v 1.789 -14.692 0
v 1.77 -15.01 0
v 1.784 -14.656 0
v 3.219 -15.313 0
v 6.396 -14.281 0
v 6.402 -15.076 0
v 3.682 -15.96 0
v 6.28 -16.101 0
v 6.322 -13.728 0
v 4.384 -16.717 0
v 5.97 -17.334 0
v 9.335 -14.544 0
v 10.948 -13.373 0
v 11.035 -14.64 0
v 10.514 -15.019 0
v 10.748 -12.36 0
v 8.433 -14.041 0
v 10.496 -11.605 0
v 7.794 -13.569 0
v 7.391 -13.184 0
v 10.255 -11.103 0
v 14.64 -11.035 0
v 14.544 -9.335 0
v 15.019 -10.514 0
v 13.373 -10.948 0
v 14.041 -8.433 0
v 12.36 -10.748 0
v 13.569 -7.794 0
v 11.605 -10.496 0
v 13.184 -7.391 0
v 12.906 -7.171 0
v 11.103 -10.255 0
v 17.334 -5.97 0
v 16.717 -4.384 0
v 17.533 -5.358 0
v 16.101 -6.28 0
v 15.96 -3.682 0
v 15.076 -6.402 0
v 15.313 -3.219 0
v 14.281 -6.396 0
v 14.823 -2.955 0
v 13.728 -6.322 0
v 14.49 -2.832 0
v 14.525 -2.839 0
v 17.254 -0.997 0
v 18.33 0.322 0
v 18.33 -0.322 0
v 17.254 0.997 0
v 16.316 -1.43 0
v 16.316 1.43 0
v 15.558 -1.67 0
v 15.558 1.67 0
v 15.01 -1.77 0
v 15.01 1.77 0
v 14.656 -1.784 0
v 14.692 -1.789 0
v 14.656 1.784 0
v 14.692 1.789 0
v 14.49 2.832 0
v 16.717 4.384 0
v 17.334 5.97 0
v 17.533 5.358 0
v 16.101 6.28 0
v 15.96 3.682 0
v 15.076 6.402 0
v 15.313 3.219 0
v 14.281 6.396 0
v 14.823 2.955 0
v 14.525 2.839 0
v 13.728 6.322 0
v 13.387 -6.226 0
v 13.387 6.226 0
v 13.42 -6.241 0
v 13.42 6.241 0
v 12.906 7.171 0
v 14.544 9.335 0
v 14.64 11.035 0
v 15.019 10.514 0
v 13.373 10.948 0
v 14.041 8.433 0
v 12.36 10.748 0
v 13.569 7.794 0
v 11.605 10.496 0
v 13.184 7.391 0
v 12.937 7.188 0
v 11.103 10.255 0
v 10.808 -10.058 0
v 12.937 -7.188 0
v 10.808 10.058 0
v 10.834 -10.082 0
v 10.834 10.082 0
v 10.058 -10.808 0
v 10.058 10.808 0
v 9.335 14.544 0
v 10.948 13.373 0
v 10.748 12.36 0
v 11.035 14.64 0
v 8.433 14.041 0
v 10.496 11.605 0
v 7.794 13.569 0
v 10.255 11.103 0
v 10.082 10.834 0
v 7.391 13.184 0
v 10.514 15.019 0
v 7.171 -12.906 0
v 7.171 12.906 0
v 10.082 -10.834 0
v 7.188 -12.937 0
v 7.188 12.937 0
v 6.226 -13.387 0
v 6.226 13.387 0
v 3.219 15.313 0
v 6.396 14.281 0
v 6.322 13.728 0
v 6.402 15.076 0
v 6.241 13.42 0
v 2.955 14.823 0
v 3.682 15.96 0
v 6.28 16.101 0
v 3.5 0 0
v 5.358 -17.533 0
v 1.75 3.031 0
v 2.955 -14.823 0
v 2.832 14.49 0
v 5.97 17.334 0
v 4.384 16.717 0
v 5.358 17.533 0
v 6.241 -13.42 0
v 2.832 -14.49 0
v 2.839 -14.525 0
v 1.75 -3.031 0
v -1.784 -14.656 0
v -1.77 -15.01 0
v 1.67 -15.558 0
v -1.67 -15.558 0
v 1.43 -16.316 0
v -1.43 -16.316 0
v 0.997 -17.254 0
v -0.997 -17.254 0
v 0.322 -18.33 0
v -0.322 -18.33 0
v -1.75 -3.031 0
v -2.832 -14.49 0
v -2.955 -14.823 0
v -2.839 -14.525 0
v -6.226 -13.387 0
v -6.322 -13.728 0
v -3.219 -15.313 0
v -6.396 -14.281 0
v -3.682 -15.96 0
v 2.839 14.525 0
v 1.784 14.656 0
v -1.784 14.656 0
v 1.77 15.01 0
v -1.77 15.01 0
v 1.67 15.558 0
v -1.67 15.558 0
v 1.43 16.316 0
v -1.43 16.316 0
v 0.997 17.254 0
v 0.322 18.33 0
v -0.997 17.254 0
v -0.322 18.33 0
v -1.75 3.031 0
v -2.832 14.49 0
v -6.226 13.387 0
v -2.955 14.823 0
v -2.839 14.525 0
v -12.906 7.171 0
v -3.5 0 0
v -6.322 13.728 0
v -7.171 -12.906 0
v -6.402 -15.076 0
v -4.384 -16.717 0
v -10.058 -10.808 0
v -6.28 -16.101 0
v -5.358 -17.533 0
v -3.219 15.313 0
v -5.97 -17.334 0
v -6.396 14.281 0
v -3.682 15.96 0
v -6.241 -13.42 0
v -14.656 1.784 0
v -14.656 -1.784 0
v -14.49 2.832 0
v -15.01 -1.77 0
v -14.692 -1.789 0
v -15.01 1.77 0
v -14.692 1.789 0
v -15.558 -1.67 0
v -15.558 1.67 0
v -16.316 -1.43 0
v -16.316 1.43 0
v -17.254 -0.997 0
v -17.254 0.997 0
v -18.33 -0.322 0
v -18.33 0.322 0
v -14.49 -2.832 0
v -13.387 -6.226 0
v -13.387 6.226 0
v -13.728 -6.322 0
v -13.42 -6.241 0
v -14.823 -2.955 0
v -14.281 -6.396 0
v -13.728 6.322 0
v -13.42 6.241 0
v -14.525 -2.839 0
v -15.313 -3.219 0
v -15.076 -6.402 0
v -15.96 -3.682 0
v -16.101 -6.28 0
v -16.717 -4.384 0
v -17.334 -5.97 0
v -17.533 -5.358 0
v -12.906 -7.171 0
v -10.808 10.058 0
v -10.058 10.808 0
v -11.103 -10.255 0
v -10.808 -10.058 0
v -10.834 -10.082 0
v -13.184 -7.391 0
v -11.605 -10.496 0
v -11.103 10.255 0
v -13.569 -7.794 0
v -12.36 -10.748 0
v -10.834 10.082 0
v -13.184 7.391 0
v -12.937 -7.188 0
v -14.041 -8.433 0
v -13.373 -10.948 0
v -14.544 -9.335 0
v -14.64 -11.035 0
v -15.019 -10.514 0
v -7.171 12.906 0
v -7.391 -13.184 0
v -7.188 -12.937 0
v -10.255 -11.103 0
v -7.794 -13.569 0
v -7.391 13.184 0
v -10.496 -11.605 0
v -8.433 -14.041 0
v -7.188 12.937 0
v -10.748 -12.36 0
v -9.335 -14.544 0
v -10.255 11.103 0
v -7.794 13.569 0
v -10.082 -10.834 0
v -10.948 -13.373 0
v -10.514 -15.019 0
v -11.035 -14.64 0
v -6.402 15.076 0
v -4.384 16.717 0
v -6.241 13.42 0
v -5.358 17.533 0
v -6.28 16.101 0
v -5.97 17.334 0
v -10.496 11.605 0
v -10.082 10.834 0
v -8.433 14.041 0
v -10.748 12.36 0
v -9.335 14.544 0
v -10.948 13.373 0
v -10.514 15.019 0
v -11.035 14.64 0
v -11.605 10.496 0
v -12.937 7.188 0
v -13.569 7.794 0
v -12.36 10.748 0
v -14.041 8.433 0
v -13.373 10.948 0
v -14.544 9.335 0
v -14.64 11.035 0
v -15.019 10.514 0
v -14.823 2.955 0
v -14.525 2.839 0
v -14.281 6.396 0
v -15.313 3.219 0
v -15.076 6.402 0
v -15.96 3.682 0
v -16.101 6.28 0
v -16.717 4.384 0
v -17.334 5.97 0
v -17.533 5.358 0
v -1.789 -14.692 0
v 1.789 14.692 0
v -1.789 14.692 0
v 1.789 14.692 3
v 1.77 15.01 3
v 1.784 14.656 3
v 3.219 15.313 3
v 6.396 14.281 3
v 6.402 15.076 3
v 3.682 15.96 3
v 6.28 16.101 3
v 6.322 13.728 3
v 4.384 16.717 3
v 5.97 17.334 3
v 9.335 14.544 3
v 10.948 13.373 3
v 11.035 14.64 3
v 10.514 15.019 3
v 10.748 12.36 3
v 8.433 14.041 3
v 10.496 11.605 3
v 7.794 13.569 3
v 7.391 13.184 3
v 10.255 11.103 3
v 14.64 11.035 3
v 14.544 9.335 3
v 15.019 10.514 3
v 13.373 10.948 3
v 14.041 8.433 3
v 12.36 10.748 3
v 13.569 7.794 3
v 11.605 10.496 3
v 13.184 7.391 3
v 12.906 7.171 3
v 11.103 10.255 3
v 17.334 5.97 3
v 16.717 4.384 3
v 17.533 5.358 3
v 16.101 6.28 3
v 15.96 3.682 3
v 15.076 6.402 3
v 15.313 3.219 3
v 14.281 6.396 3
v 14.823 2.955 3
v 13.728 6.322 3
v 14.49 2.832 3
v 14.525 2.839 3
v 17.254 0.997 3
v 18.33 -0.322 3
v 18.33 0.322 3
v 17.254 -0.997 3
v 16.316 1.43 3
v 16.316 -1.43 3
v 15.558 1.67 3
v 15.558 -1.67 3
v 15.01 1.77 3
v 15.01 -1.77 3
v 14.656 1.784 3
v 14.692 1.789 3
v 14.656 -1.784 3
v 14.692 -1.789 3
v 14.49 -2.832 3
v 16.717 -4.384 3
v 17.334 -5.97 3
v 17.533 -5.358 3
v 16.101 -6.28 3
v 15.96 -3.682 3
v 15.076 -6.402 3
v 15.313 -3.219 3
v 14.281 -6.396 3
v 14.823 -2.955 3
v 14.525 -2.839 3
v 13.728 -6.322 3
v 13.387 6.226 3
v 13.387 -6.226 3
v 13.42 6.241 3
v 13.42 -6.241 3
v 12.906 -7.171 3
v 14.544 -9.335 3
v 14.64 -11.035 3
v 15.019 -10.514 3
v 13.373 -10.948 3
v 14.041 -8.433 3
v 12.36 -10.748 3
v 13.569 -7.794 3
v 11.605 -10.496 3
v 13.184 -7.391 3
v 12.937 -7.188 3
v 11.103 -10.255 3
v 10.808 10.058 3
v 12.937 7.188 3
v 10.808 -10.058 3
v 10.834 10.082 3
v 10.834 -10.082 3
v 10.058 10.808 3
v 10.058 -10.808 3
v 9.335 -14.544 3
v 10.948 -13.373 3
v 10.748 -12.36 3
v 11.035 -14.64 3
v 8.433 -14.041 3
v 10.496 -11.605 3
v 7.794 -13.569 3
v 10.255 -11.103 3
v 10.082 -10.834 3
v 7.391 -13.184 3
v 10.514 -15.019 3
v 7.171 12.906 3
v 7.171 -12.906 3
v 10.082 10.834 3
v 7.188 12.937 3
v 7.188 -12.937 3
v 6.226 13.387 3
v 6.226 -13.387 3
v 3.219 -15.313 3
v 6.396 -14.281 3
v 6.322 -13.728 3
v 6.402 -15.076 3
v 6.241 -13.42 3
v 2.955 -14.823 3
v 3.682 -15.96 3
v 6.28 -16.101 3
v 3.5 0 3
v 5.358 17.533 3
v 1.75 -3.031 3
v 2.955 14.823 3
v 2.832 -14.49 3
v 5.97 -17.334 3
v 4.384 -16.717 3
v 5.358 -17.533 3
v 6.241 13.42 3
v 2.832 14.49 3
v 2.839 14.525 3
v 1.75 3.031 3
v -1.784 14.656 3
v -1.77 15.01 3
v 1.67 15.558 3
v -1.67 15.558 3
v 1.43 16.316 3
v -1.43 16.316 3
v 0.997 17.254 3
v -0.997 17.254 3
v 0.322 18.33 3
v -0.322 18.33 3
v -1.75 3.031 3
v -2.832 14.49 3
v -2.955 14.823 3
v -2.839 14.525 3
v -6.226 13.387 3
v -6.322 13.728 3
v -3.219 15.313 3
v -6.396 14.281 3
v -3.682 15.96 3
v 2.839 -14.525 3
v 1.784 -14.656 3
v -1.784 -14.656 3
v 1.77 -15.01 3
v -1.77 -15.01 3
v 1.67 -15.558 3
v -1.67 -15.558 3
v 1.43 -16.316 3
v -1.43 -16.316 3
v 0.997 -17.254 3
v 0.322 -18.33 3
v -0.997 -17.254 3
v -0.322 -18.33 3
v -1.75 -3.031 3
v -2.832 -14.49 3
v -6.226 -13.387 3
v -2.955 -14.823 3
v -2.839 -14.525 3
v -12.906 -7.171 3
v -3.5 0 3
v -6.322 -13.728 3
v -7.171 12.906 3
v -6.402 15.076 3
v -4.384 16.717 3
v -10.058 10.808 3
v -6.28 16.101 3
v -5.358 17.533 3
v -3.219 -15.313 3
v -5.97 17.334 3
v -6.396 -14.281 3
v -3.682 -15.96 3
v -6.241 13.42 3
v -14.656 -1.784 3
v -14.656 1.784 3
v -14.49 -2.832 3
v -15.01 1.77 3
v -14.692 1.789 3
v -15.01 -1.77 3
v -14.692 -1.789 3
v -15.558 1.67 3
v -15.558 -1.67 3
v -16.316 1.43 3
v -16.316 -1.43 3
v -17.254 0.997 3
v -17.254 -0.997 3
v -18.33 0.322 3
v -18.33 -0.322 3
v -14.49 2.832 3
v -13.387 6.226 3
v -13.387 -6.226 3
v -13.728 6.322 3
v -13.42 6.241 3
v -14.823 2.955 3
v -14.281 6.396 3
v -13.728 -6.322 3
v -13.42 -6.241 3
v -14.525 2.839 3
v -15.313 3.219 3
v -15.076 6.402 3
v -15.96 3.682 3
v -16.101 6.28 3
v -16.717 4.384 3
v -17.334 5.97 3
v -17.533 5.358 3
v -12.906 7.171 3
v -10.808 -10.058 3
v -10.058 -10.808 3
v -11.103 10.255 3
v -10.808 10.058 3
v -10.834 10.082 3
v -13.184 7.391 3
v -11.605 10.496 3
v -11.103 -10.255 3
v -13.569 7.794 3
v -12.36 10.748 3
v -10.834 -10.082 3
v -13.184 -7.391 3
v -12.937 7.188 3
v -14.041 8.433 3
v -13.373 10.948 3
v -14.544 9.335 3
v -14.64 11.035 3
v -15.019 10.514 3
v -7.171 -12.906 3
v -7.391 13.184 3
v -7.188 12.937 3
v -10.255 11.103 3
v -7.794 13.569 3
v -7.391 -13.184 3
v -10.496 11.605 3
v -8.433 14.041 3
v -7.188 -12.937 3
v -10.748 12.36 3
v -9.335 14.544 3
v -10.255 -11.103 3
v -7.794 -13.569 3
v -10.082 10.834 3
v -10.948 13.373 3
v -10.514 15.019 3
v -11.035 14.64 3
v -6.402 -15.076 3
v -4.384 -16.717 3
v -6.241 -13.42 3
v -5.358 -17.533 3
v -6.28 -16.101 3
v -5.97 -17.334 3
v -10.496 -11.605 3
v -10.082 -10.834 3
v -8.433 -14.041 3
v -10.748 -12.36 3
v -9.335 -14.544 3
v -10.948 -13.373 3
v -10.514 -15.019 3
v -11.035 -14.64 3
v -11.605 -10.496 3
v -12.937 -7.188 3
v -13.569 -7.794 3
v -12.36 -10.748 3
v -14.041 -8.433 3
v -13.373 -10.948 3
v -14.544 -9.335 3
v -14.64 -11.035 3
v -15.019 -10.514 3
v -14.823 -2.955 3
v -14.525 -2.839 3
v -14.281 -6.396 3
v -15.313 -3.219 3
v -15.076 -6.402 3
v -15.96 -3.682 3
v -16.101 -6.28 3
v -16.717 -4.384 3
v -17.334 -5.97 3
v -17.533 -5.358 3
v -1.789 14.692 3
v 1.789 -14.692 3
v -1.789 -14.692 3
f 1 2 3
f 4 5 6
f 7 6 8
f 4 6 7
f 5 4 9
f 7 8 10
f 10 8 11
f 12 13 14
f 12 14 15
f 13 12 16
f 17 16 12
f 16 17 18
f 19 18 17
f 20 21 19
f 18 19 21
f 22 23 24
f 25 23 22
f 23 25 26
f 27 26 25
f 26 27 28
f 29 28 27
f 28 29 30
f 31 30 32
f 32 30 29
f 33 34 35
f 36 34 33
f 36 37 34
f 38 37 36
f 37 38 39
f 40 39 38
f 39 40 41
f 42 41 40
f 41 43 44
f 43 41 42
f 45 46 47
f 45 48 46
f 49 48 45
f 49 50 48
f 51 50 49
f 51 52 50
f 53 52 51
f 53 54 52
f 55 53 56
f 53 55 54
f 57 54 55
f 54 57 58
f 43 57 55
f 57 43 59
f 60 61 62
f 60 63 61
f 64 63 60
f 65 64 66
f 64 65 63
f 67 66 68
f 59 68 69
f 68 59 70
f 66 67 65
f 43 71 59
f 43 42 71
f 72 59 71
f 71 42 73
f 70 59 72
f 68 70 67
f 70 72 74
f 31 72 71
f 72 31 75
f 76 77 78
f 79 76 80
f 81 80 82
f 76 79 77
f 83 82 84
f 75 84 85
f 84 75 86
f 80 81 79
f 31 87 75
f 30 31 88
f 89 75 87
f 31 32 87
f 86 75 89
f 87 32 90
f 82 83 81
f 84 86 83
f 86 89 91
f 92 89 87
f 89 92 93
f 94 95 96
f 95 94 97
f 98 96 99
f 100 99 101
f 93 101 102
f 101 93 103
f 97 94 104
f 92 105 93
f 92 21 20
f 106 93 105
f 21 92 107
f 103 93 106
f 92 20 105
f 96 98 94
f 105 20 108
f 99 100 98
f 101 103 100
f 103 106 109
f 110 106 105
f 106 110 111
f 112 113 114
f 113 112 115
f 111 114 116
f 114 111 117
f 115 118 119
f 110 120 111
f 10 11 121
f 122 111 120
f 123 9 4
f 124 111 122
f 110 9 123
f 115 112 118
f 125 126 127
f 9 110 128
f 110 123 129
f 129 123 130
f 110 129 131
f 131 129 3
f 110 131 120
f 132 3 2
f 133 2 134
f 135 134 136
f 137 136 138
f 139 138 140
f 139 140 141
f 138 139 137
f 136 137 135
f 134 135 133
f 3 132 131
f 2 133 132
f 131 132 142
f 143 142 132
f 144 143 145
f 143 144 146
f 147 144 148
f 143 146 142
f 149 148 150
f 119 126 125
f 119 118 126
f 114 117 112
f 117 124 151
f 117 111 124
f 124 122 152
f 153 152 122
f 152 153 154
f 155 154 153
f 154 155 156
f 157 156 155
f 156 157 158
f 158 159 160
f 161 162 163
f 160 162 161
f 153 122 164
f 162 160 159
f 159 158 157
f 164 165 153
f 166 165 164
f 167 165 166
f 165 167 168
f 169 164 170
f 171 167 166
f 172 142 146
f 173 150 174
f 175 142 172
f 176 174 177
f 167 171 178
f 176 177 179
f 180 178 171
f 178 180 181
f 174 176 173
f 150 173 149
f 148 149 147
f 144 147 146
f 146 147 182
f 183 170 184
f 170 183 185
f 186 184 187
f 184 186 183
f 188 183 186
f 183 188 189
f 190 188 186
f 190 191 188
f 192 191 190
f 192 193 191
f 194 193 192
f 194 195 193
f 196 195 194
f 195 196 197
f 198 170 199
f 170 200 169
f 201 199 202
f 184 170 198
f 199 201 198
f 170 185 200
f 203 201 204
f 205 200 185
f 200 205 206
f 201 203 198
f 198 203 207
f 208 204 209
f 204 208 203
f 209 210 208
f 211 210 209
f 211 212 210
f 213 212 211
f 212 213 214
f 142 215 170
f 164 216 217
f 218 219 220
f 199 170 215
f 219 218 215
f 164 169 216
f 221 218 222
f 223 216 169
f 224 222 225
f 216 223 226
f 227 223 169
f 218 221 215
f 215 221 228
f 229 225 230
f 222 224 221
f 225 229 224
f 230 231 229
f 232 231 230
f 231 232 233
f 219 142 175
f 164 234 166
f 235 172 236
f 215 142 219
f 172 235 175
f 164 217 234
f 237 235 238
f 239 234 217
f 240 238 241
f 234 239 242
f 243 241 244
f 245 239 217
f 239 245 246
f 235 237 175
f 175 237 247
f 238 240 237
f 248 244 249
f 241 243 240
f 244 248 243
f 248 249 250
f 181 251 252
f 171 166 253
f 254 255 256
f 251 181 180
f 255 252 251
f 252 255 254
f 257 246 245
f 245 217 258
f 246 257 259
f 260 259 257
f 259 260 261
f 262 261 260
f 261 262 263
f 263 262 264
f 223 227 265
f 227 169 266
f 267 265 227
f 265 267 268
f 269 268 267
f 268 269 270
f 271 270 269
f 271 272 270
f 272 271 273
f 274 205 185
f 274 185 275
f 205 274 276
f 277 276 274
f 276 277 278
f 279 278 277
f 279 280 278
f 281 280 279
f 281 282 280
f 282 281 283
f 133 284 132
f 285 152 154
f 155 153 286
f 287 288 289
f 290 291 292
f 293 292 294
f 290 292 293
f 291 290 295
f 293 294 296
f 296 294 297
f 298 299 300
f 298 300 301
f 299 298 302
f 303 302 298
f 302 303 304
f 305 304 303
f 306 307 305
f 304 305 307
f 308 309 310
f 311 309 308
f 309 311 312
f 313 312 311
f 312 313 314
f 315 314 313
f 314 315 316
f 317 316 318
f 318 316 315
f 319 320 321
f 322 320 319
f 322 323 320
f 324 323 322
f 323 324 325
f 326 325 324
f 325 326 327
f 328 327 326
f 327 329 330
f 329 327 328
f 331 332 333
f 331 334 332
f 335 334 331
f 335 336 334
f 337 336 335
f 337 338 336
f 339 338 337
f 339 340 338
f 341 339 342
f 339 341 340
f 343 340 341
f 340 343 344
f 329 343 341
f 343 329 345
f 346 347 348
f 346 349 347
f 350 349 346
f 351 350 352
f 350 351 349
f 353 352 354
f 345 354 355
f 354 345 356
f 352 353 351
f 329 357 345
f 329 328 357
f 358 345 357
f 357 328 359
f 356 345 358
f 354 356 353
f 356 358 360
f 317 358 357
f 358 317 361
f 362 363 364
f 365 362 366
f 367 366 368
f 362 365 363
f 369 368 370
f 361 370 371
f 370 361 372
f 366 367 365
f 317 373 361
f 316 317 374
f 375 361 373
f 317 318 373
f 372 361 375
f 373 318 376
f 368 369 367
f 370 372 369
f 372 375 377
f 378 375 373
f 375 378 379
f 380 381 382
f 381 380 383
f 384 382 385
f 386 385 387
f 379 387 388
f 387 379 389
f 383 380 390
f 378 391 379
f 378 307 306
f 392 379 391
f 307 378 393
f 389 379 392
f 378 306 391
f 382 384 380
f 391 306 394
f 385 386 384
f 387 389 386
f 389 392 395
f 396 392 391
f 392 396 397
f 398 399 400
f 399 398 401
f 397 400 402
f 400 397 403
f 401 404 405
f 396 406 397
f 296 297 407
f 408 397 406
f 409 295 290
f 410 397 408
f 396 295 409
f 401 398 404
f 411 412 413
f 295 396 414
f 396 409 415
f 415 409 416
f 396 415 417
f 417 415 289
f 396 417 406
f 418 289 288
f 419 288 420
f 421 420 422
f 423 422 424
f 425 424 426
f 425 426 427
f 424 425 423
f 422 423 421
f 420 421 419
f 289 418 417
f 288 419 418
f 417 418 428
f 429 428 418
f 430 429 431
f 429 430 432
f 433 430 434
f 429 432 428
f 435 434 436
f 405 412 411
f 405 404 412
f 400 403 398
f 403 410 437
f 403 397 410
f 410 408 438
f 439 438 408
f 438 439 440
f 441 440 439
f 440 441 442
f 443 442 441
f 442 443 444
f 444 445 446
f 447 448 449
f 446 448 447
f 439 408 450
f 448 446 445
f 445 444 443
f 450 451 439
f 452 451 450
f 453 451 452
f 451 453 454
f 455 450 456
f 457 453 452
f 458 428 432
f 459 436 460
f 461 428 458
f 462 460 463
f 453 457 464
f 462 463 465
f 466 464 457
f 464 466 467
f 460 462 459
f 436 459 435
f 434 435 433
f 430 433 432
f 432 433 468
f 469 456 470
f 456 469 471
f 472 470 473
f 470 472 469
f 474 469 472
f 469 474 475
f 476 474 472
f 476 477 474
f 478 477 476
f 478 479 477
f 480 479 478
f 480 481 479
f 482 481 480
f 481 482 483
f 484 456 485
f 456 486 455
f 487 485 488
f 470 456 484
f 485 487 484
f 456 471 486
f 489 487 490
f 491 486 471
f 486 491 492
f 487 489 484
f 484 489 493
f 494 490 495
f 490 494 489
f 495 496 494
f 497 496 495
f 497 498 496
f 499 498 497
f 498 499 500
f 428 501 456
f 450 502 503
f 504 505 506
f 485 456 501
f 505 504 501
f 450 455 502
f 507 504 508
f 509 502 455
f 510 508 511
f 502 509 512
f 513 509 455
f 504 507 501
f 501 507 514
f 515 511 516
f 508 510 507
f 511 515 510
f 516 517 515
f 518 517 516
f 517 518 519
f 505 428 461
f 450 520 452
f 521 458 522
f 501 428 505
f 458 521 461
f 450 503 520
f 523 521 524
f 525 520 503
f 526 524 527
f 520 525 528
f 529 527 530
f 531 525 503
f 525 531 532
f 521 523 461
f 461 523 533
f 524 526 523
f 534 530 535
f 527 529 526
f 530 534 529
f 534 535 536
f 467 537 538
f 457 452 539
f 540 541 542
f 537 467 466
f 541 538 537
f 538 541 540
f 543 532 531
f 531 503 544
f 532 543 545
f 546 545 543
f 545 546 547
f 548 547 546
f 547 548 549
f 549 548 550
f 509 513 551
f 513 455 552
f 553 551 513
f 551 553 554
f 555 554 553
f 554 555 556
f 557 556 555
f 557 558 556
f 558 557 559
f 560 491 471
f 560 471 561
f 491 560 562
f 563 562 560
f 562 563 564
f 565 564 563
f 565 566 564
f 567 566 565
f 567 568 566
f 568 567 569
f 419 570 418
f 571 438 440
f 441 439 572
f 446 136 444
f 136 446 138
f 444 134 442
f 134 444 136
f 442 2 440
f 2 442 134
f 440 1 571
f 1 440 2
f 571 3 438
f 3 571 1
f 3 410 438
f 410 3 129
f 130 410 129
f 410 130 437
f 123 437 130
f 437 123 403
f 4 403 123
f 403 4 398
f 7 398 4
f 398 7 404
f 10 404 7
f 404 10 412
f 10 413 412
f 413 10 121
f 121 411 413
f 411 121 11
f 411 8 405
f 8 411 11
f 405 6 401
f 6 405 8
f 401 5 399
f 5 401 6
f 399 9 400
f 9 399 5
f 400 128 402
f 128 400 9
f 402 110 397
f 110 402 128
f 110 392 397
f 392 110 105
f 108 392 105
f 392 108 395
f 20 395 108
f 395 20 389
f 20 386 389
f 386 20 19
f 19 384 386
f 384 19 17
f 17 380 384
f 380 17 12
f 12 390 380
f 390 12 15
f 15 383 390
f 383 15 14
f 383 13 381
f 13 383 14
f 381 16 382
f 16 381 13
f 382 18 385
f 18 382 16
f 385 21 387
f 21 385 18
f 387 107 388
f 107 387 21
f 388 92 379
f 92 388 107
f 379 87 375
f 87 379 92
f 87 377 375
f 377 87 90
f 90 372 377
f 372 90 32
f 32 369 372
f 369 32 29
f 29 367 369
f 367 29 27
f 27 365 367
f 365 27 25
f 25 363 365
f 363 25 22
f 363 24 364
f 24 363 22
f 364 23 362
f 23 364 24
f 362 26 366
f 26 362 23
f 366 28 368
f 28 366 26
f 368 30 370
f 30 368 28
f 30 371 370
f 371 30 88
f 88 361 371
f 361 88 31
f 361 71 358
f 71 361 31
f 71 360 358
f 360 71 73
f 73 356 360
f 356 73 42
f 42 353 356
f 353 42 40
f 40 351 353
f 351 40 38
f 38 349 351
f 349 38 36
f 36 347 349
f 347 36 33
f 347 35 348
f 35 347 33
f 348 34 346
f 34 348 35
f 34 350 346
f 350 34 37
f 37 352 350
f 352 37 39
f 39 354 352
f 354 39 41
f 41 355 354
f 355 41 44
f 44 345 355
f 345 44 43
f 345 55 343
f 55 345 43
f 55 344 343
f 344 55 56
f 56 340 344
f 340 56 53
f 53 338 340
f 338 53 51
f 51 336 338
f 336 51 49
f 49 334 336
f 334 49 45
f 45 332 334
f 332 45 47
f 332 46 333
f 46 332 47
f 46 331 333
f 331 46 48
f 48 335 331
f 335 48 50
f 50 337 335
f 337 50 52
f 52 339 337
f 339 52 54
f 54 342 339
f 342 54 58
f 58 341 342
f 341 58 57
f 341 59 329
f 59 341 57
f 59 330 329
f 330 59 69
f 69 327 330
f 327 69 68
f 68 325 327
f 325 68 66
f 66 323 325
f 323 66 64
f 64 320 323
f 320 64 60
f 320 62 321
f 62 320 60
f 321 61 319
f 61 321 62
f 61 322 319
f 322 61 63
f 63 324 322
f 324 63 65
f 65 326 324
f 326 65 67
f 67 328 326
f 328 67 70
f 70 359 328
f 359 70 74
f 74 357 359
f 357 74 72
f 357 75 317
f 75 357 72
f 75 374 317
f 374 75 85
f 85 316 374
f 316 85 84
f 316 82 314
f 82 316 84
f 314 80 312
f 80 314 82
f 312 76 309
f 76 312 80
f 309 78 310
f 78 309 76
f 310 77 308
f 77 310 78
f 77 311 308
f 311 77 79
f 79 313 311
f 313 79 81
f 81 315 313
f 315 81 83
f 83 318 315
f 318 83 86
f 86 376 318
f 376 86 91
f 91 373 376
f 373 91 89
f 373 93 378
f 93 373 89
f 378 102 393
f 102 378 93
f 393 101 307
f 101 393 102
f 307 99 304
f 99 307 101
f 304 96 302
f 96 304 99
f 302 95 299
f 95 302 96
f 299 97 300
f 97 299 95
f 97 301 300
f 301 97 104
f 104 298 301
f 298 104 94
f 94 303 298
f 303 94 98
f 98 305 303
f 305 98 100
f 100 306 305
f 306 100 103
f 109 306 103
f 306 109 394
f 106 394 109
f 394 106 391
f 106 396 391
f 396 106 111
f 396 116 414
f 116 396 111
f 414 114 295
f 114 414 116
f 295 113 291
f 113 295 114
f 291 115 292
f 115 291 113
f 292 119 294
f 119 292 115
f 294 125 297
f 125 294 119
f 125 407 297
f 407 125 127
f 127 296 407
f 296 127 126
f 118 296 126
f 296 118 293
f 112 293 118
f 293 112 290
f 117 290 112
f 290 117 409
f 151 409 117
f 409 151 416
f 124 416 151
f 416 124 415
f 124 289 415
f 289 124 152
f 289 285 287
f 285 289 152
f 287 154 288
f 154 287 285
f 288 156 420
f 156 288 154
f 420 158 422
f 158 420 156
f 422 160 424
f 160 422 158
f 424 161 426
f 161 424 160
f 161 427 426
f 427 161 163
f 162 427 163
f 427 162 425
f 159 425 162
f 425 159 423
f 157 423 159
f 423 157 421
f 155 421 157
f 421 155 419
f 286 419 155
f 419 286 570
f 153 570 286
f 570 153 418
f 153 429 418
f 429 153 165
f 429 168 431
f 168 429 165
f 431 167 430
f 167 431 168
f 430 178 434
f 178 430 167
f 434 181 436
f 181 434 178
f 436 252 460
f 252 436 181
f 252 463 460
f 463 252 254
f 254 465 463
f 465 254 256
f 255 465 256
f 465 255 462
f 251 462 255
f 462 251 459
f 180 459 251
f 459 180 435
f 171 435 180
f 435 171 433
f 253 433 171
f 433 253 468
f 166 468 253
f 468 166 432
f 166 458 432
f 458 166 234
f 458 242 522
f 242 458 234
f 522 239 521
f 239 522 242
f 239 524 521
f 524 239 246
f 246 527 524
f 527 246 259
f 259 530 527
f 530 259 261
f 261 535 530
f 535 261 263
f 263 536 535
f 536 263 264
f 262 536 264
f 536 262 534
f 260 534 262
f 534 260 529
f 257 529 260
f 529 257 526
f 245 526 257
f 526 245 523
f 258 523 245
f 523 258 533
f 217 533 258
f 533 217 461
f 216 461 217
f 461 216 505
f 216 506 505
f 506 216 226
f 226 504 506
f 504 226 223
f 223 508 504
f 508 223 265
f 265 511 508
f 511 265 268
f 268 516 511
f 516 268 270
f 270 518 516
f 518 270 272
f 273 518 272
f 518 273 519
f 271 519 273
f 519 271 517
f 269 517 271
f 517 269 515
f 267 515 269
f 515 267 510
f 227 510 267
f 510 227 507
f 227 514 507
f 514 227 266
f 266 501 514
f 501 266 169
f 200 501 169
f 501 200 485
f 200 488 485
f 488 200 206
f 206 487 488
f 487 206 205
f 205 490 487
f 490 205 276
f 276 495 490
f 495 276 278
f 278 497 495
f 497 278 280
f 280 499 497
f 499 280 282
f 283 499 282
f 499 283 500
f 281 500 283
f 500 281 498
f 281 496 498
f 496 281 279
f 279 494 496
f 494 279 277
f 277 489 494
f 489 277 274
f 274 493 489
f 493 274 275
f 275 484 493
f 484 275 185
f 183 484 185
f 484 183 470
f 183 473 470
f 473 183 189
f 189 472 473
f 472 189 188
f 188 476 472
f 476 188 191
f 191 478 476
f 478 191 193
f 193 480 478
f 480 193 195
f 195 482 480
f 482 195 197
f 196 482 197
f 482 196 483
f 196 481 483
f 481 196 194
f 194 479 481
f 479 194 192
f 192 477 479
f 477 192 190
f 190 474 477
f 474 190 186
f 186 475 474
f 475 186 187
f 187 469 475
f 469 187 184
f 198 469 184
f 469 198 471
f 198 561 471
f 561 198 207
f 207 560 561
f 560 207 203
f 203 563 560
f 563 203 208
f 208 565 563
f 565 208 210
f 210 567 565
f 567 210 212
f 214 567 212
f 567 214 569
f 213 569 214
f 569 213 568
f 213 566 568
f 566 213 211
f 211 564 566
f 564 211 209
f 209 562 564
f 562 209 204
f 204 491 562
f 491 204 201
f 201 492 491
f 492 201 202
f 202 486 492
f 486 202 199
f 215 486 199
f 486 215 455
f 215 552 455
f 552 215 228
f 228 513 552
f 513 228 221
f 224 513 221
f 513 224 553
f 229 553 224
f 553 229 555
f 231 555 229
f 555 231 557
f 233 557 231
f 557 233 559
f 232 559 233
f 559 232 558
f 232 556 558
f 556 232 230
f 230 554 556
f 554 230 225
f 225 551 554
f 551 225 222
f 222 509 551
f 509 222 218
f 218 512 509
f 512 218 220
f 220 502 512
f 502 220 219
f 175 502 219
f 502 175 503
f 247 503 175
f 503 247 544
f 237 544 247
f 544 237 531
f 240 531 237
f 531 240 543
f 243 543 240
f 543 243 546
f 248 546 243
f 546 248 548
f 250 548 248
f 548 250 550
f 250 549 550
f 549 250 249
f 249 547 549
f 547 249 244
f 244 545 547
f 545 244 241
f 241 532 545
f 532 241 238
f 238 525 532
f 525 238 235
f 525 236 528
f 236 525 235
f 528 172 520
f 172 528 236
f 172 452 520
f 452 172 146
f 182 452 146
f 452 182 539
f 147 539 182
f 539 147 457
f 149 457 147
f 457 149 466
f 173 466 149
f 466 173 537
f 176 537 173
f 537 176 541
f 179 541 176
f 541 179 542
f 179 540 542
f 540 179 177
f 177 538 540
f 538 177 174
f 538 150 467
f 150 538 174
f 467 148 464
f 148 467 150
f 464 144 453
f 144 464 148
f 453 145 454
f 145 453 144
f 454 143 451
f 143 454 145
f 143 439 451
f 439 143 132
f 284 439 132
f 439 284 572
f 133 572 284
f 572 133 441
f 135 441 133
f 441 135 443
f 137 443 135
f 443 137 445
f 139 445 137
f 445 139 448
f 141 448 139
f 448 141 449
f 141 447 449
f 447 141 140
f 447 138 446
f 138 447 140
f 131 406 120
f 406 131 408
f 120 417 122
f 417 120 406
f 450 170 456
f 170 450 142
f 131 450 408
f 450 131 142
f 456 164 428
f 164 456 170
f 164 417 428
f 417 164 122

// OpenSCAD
use <MCAD/involute_gears.scad>
difference(){
    linear_extrude(height = 3) gear(number_of_teeth=20, circular_pitch=300, flat=true);
    linear_extrude(height=6) circle($fn=6, d=7);
}
